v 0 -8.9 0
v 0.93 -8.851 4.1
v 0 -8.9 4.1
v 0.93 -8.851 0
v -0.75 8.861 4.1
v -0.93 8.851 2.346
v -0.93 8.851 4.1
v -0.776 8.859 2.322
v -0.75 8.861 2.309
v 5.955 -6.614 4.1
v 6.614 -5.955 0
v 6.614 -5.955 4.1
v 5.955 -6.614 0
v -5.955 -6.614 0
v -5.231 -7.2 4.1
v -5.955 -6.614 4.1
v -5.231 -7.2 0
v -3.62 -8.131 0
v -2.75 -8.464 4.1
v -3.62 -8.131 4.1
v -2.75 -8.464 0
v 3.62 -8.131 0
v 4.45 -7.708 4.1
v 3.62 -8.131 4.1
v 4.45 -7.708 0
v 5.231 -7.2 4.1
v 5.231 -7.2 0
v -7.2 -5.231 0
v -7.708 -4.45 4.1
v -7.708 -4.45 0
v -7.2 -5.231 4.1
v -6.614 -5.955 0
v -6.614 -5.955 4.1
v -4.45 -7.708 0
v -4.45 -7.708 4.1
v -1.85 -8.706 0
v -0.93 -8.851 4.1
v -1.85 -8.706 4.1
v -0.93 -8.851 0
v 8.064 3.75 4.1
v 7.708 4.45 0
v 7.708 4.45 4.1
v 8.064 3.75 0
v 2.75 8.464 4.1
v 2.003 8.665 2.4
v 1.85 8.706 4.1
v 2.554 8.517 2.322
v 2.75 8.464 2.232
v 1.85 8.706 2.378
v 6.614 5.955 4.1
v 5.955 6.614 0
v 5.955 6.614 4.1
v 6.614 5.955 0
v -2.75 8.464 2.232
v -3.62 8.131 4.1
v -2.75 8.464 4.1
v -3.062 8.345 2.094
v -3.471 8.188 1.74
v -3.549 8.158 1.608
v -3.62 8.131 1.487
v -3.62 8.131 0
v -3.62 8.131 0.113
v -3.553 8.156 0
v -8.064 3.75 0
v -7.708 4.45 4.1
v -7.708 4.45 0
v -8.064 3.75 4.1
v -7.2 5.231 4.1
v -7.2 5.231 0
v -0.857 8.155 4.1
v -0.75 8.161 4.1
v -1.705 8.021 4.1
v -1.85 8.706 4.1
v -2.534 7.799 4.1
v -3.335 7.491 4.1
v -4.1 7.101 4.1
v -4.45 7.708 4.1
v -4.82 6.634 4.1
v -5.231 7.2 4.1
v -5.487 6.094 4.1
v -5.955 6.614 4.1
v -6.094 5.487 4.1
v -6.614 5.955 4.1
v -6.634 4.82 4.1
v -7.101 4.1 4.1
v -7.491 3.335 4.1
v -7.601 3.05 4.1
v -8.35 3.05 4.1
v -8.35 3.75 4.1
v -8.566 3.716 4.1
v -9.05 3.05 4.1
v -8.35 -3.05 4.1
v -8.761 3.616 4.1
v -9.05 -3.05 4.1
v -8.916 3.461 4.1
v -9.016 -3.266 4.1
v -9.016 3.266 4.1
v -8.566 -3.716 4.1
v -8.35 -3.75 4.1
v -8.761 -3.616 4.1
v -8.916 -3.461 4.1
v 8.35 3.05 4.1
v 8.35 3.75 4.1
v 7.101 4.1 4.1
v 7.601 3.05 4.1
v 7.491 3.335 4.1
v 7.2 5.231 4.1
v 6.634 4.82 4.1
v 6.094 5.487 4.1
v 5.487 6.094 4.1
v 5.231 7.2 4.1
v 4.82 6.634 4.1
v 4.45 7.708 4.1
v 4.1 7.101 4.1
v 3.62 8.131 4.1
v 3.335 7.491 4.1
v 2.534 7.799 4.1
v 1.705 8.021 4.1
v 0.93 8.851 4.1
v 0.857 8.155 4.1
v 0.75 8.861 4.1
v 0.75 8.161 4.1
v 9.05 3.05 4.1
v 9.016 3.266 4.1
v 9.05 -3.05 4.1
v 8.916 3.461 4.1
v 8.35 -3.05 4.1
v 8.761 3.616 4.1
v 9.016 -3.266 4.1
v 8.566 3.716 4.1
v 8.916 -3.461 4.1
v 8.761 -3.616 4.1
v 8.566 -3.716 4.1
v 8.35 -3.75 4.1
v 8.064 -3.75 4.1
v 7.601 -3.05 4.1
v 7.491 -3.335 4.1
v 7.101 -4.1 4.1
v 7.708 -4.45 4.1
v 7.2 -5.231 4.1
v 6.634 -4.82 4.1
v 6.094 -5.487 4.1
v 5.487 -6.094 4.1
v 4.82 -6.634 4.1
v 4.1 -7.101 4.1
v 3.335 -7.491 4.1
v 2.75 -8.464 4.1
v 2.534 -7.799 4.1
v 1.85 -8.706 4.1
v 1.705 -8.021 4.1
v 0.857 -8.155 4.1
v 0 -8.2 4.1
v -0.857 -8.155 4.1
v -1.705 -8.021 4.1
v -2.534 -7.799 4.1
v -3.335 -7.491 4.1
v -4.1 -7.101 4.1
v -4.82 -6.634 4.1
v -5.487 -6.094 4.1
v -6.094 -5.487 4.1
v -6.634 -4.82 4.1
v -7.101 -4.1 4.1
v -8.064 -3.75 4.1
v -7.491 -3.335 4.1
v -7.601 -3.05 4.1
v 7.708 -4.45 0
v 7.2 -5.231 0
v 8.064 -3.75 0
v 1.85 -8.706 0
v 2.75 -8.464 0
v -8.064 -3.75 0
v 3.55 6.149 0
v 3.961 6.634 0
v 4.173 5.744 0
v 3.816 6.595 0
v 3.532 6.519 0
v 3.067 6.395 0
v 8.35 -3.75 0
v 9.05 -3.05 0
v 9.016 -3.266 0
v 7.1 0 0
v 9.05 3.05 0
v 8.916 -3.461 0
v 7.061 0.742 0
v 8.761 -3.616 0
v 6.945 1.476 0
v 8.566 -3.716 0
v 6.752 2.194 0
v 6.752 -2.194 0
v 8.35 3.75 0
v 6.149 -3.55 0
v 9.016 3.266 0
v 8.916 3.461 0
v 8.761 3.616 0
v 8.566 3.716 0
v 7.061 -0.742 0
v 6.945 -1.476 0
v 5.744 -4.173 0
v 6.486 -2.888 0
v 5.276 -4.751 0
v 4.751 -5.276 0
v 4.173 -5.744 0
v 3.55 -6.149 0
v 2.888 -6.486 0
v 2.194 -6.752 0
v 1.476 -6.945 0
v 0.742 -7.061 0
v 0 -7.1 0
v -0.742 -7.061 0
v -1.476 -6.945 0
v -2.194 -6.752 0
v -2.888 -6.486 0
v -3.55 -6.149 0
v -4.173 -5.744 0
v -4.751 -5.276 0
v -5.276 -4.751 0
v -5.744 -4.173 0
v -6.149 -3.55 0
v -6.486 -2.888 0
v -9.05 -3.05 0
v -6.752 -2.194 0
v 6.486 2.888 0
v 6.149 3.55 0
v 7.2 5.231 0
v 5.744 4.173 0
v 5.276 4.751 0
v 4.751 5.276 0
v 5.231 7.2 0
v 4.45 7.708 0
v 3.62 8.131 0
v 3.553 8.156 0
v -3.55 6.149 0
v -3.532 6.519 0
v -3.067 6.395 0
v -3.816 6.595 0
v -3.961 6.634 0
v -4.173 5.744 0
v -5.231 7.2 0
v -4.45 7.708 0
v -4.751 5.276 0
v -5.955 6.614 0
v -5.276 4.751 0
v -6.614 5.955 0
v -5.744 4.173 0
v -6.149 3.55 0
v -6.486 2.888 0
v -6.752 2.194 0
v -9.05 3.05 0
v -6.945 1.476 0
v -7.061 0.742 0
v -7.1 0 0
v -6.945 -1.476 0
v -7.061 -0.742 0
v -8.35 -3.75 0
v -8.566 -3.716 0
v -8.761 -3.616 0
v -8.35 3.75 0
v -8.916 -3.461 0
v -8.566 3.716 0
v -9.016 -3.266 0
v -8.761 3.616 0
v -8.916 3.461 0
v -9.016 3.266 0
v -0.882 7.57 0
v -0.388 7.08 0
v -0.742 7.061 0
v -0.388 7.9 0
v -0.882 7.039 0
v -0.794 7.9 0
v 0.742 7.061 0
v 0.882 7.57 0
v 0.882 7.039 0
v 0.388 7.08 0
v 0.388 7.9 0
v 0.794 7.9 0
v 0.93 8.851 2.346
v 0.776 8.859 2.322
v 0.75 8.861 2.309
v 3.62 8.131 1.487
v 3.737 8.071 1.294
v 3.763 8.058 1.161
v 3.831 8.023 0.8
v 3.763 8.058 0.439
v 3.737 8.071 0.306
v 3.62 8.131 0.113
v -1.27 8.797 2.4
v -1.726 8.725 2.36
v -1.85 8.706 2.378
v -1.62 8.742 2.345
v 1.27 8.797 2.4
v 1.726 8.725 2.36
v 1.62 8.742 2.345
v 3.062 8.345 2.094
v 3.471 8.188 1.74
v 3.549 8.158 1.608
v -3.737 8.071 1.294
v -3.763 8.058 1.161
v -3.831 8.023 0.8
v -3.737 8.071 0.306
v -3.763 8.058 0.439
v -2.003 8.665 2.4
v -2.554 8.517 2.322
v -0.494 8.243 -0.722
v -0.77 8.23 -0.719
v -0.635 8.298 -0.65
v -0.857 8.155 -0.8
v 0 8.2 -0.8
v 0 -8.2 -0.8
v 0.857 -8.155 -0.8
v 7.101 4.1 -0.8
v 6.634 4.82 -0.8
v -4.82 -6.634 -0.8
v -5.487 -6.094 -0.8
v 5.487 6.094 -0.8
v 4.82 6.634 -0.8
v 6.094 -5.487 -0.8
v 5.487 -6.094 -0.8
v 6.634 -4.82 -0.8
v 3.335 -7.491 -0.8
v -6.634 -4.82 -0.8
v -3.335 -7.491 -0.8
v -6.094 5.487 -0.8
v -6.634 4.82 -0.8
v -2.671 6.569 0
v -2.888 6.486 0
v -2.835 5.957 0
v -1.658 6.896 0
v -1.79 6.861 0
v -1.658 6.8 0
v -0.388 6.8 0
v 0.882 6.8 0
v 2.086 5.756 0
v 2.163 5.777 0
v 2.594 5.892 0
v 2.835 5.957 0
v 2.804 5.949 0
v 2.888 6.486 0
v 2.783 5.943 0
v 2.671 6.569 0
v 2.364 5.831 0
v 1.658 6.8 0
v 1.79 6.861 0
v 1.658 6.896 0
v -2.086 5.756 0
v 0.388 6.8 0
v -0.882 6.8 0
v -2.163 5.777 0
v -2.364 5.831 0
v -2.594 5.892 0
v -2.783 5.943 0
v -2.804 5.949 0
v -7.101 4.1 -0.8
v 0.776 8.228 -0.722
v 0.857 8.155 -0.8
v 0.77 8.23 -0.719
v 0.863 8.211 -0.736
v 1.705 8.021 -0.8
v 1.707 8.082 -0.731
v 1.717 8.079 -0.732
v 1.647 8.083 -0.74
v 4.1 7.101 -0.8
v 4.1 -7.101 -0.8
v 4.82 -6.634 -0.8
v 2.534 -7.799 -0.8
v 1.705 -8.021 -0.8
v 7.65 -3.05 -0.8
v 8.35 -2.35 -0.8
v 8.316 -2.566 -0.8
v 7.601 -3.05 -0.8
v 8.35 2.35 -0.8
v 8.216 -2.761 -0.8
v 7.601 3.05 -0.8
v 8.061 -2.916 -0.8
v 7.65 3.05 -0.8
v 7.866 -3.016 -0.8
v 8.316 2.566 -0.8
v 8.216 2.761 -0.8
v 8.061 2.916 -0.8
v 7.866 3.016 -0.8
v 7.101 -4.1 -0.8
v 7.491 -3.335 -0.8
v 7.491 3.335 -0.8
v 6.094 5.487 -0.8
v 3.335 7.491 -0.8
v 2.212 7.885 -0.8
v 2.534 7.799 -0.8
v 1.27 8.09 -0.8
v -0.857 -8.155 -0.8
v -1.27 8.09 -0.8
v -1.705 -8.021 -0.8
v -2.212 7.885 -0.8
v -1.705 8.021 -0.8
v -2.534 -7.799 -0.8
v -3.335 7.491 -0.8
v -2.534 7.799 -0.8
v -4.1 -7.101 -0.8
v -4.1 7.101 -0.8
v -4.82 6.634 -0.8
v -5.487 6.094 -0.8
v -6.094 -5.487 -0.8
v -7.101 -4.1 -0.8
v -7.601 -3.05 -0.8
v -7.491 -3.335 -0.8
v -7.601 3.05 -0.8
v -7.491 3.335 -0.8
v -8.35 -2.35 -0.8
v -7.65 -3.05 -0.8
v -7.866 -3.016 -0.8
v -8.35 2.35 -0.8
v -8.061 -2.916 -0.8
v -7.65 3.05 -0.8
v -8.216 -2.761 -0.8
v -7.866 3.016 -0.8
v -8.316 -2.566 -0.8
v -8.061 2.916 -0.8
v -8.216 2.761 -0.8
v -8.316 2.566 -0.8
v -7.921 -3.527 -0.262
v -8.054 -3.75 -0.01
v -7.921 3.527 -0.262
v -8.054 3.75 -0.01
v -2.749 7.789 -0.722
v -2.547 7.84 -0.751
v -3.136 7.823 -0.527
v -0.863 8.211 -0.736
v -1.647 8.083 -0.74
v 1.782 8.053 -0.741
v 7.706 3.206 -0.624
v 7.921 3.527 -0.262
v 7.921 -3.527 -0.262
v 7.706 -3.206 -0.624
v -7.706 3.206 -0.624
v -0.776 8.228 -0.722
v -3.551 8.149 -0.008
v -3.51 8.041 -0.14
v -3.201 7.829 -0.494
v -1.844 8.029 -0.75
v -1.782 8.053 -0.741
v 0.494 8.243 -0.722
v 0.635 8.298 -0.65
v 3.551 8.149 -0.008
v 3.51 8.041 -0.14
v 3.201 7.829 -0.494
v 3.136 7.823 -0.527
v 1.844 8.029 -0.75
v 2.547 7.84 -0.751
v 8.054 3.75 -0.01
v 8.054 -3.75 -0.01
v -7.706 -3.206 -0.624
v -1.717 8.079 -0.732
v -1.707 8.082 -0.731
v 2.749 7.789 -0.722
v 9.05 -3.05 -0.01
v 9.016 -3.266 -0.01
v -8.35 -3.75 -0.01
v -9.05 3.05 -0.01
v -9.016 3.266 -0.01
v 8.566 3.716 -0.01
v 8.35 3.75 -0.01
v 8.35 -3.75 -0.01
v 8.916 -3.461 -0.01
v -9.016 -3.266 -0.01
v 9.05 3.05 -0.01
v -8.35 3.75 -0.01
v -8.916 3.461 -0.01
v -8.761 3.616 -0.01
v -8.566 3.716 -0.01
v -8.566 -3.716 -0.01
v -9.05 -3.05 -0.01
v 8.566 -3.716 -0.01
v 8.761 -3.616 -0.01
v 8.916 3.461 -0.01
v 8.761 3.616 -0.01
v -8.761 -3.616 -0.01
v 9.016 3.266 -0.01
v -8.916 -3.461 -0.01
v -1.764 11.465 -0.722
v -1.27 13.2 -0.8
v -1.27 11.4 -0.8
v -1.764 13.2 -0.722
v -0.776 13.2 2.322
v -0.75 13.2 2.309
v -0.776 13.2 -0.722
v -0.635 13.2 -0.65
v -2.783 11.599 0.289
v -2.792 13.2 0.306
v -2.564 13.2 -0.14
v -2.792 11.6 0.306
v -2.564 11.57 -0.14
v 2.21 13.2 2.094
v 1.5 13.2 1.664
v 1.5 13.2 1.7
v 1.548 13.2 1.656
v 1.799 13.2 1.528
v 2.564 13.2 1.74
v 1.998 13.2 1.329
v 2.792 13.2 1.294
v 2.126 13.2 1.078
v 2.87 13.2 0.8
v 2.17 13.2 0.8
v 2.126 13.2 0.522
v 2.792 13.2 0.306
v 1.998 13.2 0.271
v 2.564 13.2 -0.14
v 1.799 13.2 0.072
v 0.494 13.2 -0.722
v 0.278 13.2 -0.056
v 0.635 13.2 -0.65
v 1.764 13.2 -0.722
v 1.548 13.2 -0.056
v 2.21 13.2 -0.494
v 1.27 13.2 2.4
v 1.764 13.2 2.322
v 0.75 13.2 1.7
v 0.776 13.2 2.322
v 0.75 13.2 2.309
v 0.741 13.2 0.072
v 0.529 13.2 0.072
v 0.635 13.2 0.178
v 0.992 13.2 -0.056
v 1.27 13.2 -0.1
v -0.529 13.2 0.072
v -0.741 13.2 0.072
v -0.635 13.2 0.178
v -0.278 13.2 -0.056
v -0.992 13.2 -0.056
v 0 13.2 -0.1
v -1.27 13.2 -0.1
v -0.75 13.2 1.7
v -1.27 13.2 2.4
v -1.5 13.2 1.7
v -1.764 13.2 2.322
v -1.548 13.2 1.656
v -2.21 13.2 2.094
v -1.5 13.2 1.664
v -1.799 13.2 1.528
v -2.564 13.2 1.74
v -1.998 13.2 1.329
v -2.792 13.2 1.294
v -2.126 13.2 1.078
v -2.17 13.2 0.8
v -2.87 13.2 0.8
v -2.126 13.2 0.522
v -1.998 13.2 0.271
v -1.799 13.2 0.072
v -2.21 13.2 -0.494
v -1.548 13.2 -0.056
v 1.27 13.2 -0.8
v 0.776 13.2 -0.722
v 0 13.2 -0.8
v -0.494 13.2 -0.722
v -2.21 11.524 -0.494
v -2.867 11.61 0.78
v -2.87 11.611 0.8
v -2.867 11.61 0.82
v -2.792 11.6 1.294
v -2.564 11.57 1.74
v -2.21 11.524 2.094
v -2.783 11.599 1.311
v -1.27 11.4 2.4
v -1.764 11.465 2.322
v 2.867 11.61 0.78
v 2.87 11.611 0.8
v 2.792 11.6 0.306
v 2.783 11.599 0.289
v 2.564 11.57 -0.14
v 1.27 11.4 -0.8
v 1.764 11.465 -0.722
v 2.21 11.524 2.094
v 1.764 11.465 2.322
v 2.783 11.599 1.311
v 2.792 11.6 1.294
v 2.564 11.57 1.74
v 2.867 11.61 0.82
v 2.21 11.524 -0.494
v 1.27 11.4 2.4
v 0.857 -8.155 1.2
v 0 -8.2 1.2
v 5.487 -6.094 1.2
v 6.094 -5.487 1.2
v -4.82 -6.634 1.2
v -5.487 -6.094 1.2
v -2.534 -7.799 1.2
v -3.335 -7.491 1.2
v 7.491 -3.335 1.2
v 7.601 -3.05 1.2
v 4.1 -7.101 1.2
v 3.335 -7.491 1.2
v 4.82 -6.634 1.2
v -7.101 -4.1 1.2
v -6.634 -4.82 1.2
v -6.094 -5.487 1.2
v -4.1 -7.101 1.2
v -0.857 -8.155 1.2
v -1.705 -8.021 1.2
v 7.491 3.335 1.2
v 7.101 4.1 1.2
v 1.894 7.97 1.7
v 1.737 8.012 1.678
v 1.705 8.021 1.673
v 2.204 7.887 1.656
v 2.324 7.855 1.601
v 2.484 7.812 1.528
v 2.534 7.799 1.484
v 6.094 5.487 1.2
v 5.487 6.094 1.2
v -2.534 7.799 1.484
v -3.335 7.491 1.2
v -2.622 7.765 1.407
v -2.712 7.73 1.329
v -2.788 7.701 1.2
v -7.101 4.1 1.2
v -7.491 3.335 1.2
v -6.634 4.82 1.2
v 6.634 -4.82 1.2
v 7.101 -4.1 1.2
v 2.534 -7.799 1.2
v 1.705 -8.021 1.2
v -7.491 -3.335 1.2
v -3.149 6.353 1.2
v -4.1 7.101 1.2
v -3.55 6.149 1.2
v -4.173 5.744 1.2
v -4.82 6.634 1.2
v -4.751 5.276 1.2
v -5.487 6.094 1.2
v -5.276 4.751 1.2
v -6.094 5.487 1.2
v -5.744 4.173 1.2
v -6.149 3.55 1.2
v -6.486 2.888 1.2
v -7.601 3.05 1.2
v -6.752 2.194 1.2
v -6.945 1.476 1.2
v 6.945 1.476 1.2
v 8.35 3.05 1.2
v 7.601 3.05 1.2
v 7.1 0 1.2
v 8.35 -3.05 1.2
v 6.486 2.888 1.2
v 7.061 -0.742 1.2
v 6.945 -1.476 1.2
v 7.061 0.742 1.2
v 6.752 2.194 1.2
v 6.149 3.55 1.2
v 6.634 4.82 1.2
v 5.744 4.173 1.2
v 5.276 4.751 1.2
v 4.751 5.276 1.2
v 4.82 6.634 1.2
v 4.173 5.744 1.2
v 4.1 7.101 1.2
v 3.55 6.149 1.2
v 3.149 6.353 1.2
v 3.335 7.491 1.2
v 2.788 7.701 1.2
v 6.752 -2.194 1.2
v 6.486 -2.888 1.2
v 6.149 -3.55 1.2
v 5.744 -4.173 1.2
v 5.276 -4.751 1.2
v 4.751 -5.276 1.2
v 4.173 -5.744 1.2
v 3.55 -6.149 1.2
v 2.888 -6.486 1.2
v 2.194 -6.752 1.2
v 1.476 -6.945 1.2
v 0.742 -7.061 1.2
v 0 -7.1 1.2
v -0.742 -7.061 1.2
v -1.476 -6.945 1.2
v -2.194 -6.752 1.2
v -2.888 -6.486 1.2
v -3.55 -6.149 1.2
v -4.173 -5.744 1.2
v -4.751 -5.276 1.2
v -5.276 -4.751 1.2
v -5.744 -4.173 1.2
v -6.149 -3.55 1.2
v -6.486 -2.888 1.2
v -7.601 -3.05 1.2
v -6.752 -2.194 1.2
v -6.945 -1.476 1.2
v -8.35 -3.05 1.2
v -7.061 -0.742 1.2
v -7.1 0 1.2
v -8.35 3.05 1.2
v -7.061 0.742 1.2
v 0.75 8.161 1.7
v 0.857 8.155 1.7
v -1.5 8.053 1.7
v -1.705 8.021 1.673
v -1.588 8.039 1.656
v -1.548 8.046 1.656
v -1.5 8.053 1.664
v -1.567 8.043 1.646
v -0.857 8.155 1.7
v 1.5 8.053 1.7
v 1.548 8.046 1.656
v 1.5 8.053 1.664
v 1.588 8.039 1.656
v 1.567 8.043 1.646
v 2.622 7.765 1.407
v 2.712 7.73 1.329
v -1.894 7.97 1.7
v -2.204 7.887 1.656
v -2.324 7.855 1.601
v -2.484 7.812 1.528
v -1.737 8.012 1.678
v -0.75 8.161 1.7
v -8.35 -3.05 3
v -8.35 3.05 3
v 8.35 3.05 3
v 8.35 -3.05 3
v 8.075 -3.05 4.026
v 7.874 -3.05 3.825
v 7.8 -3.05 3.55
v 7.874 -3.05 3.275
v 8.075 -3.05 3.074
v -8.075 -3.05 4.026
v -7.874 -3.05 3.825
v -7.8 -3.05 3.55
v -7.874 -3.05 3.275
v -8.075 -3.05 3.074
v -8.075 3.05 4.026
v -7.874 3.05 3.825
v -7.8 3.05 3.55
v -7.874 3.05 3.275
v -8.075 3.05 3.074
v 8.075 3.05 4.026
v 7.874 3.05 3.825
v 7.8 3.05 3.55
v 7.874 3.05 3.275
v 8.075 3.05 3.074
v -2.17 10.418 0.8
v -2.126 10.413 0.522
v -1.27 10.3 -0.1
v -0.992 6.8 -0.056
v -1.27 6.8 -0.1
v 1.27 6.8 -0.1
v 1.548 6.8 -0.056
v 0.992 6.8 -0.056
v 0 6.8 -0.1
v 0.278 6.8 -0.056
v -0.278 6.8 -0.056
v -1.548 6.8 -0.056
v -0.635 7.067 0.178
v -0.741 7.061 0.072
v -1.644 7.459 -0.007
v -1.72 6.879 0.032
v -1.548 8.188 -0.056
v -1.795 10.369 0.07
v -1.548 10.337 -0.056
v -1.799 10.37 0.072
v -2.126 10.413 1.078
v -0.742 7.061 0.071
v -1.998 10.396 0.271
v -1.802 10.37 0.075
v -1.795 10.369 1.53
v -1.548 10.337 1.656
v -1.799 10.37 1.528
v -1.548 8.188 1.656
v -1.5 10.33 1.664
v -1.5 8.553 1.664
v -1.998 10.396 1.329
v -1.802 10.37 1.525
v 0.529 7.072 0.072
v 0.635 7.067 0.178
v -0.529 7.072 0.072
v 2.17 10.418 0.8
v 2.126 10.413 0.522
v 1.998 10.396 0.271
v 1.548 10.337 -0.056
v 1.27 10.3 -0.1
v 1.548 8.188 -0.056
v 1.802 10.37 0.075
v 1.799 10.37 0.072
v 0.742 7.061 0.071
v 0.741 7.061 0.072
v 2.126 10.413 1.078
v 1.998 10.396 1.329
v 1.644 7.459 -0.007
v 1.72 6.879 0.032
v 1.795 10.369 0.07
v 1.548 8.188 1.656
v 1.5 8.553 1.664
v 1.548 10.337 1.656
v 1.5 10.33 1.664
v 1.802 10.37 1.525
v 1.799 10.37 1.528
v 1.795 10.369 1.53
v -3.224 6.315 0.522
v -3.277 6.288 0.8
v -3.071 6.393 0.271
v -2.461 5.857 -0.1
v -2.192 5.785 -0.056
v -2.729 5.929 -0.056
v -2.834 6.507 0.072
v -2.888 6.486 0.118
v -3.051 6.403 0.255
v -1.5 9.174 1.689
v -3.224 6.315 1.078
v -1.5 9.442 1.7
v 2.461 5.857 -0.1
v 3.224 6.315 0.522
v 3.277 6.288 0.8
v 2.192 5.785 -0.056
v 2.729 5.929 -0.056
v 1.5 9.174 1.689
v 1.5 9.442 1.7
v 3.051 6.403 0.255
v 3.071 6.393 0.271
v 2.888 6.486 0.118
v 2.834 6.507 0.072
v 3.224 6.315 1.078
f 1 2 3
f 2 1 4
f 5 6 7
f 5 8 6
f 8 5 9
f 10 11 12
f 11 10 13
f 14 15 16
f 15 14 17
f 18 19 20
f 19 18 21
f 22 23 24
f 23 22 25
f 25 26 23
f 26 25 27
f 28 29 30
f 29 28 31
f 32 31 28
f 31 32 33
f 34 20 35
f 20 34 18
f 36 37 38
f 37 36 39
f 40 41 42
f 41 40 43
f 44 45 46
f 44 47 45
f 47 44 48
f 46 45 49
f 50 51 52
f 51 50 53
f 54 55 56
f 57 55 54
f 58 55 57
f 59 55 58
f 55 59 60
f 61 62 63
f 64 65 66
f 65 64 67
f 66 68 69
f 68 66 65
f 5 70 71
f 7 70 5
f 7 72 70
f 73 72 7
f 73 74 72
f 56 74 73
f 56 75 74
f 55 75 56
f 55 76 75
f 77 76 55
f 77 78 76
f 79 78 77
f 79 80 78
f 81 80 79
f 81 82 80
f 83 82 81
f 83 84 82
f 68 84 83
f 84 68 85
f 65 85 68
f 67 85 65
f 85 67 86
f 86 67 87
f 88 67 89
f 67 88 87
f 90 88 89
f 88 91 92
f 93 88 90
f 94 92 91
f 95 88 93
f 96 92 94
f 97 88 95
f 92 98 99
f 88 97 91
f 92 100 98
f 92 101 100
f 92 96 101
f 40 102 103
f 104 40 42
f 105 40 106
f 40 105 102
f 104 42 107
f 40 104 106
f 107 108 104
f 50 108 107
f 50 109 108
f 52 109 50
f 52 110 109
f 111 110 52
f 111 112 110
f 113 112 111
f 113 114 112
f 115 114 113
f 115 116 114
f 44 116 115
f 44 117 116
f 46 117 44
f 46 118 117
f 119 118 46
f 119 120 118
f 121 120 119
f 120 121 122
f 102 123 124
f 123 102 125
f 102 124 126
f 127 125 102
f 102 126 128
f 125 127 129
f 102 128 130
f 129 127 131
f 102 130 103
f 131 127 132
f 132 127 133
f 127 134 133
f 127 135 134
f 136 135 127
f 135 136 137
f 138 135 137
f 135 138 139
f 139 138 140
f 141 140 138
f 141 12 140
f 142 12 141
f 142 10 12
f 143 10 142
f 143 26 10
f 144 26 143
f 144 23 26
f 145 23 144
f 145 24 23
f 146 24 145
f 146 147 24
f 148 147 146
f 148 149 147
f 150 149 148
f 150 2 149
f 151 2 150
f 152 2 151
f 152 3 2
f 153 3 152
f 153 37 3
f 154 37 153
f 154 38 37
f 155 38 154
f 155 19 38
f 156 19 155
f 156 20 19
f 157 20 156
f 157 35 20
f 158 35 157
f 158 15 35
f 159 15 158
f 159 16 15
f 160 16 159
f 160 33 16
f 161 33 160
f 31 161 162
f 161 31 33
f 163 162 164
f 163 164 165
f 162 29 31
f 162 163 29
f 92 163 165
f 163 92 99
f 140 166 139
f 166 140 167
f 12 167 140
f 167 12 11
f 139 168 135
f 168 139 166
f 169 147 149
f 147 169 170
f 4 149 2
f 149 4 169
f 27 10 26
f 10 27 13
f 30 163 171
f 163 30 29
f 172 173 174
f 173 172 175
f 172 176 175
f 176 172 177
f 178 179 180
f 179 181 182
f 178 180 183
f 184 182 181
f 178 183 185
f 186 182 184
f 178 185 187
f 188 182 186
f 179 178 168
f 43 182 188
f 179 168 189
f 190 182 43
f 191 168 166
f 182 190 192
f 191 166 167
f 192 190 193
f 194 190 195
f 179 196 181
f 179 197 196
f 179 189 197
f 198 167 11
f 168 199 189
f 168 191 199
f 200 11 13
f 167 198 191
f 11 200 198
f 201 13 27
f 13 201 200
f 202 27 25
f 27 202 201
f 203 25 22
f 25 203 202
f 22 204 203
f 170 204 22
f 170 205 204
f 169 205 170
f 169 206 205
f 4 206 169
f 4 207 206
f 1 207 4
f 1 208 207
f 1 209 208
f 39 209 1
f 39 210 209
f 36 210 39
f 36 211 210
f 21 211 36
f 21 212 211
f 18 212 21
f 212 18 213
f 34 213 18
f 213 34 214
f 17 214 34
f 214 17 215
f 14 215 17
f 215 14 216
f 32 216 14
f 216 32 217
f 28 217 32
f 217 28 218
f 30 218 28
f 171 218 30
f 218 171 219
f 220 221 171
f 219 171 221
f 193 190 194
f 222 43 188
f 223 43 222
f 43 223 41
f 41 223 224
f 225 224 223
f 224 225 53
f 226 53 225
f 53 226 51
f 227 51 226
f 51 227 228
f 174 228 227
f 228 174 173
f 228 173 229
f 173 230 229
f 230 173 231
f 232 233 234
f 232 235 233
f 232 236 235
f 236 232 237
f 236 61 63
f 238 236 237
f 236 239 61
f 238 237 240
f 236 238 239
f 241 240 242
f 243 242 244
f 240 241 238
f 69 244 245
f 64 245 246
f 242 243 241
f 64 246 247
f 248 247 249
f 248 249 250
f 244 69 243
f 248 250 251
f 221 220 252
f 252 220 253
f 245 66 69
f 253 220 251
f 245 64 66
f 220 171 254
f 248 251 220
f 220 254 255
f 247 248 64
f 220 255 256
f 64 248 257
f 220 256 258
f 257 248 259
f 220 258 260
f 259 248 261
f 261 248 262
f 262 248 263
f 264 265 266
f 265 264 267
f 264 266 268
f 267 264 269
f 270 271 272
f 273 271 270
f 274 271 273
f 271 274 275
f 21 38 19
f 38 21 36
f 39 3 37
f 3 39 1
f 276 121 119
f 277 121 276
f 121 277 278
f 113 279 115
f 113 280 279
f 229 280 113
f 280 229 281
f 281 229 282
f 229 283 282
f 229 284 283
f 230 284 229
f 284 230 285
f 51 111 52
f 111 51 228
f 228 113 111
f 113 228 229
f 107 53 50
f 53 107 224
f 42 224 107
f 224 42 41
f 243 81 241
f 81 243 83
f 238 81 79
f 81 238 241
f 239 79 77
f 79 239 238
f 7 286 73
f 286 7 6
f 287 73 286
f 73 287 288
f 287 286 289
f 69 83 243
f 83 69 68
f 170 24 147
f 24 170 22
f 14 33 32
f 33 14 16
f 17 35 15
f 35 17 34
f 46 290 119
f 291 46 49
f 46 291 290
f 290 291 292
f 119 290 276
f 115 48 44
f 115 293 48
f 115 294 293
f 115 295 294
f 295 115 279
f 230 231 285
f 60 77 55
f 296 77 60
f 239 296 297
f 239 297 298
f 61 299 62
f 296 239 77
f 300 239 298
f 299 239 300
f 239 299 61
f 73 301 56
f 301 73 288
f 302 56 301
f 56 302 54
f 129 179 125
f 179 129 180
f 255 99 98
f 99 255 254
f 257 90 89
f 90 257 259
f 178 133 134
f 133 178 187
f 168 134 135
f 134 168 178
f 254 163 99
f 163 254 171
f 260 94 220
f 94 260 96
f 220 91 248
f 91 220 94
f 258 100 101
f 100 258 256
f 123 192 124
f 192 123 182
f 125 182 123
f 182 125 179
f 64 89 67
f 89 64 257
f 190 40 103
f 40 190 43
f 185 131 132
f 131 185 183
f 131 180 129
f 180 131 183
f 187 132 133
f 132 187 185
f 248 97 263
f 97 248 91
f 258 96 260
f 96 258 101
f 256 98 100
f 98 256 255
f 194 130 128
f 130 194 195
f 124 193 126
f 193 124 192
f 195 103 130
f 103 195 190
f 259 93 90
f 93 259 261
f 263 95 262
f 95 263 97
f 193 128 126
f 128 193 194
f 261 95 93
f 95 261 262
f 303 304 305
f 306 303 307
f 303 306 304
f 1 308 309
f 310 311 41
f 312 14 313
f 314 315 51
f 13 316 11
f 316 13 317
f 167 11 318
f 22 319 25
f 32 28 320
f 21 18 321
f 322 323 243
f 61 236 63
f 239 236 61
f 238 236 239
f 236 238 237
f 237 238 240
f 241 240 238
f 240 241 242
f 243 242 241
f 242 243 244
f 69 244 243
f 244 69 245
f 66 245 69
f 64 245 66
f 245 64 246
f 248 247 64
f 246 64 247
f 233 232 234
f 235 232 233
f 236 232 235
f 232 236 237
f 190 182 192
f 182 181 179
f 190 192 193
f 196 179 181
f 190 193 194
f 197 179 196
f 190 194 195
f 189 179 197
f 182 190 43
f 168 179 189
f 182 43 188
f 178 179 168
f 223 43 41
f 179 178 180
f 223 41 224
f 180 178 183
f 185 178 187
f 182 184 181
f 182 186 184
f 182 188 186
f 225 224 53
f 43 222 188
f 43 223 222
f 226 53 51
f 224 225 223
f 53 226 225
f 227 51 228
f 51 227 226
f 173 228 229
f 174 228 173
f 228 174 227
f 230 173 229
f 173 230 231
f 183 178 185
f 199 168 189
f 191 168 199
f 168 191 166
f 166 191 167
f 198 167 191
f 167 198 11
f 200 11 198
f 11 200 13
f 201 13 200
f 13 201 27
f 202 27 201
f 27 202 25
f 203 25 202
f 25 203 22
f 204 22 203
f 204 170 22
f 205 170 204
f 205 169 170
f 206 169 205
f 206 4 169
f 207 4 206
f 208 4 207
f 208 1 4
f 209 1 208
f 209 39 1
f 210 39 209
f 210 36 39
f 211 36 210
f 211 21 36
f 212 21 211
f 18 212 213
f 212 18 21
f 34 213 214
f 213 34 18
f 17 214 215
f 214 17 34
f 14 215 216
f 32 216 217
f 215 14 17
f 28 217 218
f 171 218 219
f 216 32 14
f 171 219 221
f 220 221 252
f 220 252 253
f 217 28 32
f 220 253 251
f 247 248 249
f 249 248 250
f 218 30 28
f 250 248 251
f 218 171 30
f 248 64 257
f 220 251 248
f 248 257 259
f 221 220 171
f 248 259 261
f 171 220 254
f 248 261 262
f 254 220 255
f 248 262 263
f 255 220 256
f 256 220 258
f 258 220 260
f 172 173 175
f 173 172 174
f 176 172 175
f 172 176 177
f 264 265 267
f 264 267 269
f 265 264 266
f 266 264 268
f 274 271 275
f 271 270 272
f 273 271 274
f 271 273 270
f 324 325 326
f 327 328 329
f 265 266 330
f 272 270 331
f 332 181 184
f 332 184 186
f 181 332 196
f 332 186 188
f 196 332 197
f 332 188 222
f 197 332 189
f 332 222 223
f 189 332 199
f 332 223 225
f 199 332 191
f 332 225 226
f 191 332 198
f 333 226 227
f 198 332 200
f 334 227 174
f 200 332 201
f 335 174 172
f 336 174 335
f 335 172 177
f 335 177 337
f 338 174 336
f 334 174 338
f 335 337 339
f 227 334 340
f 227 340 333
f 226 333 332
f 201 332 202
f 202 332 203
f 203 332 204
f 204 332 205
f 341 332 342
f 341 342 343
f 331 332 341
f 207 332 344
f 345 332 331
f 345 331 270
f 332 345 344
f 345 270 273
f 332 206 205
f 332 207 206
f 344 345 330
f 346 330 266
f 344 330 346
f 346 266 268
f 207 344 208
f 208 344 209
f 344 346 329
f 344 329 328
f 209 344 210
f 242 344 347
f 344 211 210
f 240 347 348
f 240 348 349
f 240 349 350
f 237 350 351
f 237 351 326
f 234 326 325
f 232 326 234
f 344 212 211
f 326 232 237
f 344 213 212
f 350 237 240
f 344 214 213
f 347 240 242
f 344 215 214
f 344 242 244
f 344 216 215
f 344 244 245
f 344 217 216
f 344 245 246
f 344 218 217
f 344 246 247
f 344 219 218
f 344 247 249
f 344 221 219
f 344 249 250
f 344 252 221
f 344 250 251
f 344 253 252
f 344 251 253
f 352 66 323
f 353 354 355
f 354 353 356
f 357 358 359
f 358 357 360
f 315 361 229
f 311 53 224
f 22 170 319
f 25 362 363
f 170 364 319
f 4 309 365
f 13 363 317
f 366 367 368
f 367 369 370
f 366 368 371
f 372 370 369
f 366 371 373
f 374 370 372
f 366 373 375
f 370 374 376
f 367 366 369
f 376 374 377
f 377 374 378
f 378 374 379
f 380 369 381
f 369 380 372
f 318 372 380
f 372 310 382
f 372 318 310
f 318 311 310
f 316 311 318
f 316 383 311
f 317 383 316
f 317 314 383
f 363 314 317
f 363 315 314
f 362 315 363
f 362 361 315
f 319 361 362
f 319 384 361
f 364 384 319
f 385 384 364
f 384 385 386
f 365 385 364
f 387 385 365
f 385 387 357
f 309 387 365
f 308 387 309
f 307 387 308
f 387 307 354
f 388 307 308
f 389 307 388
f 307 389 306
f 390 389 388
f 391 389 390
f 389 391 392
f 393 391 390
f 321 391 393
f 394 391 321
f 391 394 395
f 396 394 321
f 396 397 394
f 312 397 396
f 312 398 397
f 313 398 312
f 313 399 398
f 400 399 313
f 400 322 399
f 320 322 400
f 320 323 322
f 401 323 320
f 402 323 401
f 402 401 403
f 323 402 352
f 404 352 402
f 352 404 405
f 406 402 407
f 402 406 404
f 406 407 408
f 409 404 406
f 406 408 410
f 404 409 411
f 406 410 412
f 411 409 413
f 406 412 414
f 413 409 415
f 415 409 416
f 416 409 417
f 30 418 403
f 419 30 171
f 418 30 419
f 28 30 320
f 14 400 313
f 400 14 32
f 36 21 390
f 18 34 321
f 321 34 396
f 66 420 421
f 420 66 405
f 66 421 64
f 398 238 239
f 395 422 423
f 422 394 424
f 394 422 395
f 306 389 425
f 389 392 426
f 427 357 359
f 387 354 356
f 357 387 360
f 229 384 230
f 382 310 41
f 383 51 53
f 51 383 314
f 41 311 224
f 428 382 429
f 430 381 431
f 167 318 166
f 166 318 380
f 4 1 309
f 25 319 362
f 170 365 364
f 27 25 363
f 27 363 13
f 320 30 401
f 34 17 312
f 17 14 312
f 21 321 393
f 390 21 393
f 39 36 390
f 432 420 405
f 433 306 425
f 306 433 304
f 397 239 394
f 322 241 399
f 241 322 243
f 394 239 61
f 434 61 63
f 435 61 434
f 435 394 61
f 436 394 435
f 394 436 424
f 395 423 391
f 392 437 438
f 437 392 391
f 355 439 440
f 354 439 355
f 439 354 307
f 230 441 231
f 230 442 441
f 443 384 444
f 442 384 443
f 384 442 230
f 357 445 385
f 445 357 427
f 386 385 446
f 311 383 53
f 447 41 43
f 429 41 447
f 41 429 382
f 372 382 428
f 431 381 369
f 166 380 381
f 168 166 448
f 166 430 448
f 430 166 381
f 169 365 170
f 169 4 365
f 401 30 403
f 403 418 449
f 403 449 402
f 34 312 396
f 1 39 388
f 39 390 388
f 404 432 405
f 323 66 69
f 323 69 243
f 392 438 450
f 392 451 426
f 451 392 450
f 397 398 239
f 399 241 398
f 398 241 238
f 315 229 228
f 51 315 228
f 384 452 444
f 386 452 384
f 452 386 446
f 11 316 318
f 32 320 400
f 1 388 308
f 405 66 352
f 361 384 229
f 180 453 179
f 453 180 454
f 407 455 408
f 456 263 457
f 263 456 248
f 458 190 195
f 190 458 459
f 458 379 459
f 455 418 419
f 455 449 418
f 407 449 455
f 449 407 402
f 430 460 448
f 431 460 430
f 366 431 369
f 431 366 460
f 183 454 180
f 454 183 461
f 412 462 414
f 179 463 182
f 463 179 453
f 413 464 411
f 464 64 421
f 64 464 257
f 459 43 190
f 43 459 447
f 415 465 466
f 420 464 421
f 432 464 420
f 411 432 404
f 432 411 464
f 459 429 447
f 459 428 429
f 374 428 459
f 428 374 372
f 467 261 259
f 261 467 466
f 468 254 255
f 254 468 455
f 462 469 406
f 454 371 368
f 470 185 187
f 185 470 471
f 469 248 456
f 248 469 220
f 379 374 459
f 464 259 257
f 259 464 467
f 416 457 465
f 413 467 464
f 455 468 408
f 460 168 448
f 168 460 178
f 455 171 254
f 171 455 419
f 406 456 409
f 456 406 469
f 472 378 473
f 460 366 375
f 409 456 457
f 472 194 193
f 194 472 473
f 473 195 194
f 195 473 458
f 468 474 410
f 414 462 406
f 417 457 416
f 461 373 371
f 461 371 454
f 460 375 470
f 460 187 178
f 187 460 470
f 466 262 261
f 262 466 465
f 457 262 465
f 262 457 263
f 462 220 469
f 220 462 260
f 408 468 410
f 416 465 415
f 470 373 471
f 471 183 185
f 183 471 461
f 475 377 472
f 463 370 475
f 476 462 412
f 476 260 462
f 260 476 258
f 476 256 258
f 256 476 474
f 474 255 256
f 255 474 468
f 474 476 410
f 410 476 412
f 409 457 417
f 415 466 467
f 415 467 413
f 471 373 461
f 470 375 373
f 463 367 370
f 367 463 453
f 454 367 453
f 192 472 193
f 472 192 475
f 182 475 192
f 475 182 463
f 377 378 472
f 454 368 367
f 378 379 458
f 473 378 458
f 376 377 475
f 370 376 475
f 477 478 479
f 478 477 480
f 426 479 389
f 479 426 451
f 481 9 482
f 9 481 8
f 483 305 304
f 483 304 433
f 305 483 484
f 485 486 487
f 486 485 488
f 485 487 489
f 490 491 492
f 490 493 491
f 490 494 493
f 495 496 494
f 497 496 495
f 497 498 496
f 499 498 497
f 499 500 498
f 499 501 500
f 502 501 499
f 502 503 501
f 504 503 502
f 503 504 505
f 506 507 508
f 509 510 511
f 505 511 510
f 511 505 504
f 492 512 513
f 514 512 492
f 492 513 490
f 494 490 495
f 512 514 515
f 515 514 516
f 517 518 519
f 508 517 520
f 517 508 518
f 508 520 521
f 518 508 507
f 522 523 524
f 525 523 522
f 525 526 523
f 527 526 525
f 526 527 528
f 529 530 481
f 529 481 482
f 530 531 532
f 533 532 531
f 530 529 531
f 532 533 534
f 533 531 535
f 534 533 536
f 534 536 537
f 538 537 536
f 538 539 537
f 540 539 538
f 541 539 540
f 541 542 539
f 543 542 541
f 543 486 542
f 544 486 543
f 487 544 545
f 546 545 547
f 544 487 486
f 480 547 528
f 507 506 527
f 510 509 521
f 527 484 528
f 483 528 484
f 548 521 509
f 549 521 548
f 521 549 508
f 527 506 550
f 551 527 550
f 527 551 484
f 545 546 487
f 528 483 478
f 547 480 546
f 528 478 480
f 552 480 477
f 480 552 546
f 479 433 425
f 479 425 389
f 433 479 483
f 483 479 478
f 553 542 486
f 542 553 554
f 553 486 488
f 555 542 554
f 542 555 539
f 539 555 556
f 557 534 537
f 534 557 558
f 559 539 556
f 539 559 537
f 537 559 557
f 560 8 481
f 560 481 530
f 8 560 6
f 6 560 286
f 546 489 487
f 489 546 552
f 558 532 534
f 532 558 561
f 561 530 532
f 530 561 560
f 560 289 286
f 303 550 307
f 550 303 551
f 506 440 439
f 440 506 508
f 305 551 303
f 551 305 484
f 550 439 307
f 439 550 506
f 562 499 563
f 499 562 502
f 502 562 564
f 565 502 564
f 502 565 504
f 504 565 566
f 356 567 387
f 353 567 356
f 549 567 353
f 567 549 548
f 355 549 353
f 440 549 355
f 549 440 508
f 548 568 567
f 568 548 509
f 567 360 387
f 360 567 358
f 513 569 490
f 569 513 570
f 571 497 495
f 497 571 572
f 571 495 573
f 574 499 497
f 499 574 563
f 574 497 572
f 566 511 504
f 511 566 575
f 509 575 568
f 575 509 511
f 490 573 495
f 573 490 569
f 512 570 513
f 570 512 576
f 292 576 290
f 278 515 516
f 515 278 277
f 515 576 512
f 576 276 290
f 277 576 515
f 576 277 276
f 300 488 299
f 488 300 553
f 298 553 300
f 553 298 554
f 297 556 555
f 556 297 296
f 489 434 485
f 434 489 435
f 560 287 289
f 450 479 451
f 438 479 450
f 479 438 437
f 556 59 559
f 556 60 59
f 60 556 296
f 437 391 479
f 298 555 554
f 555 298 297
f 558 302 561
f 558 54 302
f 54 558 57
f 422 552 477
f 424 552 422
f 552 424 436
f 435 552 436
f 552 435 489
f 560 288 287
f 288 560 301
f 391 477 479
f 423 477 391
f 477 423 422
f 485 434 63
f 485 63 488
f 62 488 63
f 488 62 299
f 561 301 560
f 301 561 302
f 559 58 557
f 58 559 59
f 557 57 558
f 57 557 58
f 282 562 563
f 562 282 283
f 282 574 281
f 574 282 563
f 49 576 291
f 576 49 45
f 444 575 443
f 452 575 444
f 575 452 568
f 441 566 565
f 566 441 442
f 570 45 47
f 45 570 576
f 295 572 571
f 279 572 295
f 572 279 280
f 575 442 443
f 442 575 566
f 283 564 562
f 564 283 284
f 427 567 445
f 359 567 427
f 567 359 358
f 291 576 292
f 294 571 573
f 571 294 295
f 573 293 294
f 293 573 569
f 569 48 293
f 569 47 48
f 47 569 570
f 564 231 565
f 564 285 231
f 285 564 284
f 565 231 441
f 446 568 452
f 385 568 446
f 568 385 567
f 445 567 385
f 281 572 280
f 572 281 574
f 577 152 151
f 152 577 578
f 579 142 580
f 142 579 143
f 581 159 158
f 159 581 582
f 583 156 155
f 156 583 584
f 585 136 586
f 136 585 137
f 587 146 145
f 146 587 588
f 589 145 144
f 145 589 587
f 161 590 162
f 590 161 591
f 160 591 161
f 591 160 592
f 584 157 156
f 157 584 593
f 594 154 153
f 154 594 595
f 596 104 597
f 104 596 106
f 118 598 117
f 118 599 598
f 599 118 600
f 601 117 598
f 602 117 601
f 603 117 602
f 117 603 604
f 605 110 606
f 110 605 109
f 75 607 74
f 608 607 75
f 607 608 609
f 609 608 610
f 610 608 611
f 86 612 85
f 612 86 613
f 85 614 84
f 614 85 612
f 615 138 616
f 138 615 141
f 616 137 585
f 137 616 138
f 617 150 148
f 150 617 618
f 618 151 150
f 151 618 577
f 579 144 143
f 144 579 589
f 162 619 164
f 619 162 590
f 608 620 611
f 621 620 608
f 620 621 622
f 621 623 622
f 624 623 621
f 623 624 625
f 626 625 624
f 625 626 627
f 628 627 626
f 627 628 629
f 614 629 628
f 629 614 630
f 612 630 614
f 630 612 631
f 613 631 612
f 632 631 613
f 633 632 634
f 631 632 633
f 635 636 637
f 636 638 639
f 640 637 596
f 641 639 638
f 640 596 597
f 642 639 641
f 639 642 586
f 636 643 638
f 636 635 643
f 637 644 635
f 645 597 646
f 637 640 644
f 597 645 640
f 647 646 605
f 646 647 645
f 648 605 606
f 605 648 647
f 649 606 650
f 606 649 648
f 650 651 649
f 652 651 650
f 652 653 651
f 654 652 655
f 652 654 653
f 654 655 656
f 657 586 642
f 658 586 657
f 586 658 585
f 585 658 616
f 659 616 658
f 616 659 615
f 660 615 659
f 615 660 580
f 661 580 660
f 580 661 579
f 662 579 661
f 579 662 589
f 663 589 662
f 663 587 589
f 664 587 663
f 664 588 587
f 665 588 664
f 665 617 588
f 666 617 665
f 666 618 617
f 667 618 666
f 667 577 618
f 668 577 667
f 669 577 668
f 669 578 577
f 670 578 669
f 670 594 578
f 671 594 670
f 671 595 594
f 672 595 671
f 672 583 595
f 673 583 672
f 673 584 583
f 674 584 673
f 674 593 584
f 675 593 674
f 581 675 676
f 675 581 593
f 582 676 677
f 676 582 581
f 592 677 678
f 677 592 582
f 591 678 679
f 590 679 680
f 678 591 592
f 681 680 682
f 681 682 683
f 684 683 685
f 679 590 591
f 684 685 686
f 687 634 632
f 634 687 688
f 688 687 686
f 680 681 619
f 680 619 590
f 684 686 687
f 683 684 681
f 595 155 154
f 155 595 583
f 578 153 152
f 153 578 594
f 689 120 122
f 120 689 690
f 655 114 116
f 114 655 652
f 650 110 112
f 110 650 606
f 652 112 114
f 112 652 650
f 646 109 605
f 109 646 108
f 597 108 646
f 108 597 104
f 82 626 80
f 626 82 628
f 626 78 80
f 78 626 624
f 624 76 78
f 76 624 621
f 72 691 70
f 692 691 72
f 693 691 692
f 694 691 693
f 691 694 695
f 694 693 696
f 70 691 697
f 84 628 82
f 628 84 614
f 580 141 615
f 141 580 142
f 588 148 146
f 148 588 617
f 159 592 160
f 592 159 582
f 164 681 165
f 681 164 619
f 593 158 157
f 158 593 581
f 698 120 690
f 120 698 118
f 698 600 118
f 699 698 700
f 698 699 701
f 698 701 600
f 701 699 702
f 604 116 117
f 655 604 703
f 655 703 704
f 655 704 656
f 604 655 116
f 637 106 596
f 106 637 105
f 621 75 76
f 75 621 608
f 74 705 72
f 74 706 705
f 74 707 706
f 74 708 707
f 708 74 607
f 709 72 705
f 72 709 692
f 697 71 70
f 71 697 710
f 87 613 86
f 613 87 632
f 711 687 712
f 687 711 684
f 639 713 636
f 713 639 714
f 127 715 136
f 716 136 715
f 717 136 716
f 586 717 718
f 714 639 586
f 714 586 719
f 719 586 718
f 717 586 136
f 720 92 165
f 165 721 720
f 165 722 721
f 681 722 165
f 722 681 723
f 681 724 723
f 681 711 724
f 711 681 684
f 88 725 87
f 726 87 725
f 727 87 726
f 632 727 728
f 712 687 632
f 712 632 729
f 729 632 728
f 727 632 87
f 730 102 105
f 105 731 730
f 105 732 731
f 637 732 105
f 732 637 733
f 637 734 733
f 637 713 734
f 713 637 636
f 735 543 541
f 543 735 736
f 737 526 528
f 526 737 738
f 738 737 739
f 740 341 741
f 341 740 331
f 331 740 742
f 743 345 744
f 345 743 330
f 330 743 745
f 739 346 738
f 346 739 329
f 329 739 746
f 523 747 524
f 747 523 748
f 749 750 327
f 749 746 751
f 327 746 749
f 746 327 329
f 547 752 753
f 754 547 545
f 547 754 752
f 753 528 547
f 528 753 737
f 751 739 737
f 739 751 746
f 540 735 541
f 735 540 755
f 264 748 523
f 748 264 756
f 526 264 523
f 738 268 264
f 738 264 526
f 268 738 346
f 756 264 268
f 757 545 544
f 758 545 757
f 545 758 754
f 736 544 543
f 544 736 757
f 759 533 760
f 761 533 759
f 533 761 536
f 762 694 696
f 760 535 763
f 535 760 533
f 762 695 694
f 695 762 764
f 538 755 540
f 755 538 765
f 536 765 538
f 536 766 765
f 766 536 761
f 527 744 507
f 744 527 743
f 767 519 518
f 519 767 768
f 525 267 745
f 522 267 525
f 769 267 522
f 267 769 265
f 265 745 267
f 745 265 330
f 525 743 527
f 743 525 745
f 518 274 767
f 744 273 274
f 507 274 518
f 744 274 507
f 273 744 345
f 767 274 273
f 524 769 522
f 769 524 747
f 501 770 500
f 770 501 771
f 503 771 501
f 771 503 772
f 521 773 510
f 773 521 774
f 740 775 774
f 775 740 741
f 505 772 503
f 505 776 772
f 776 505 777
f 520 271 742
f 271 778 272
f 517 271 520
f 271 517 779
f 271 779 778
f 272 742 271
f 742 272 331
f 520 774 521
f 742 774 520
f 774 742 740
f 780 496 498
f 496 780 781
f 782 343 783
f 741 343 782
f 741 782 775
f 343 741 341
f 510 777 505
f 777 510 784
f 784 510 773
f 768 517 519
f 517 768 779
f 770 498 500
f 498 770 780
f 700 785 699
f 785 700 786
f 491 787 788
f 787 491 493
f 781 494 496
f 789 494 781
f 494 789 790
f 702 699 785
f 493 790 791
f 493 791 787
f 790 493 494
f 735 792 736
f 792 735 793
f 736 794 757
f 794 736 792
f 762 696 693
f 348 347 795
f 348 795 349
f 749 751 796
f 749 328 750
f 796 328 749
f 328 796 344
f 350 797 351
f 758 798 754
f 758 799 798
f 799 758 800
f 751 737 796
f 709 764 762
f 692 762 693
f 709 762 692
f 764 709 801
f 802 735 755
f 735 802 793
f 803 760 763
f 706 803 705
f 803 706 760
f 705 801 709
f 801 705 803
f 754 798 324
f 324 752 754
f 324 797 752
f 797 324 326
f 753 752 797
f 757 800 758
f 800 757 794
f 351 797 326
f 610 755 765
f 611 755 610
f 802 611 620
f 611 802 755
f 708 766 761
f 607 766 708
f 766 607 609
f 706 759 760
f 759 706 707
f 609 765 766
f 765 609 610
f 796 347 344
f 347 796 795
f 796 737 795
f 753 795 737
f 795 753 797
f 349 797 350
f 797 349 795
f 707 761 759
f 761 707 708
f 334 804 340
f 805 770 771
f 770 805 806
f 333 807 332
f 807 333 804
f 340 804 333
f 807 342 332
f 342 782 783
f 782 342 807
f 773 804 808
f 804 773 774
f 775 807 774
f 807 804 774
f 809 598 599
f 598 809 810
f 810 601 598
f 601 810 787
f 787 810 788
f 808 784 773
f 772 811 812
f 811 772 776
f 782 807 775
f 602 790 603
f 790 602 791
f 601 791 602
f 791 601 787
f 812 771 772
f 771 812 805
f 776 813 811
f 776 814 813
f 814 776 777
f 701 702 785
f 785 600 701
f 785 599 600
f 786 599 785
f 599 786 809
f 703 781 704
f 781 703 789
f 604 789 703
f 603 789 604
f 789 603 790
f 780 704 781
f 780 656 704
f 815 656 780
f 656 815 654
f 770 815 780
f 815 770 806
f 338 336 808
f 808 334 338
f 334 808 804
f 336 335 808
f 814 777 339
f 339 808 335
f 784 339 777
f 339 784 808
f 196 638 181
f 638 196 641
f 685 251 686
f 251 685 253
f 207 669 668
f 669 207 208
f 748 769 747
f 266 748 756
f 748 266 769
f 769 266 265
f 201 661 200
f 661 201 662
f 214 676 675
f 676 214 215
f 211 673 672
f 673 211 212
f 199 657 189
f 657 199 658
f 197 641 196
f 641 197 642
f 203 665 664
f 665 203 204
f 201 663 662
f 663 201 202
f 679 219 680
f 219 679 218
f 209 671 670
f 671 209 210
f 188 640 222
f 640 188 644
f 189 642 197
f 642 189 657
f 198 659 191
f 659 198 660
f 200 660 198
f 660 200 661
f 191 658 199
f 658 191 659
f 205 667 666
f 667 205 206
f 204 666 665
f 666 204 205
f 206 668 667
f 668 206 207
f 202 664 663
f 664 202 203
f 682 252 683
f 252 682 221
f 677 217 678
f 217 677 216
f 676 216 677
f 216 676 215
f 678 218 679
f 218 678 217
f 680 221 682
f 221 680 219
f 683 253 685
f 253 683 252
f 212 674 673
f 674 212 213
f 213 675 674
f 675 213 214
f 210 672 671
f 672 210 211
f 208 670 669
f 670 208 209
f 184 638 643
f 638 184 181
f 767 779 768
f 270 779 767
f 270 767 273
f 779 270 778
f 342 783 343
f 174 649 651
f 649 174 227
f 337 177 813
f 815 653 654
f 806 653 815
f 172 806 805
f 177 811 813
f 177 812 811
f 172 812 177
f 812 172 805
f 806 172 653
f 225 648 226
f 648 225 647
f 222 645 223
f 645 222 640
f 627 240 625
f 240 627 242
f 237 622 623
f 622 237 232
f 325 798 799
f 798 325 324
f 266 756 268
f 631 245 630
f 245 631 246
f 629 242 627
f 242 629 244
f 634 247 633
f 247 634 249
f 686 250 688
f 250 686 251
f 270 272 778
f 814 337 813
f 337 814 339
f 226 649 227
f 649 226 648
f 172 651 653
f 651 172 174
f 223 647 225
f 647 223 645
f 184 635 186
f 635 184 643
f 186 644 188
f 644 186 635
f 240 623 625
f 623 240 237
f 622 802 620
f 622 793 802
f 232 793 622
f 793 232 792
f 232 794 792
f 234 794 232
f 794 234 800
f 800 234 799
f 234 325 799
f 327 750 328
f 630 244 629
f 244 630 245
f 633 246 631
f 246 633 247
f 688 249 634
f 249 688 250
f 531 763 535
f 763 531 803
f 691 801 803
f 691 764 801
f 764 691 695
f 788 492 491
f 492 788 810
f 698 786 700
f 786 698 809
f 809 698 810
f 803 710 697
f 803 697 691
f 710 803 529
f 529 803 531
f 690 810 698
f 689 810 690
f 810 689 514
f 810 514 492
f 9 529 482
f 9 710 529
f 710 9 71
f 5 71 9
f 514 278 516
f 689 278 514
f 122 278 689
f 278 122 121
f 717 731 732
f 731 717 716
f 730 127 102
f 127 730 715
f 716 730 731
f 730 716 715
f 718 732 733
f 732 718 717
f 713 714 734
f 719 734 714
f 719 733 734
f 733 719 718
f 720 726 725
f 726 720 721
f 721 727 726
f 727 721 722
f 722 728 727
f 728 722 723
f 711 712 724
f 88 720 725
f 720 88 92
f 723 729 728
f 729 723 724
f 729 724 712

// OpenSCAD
//
//  Cap for pulsesensor
//
//  design by Egil Kvaleberg, May 2015
//
//  note: flat section of wire channel
//
//  note:
//  design origin is center of pcb, underside of top cover surface

part = "all"; // [ demo, all, section, core  ]
//part = "core";
//part = "section";

pcb_d = 15.8; // main diameter
pcb_w = 5.5; // width of square section
pcb_l = 16.1; // length
pcb_h = 1.5; // thickness
pcb_rim = 0.8;

wire_len = 5.0; // length of wire conduit
wire_dst = 1.27; // distance between wires
wire_dia = 1.5; // diameter of wire (1.27 nominally)

pcb2top = 1.5; // room for wires and components in top (1.1 net)
pcb2bot = 1.1; // lower rim

snap_dia = pcb2bot; // snap lock ridge diameter
snap_len_x = 10; // snap lock length
snap_len_y = pcb_w; // snap lock length

wall = 0.7;
twall = 0.8; // wall size of top 

tol = 0.3;
d = 0.01;


module nut(af, h) { // af is 2*r
	cylinder(r=af/2/cos(30), h=h, $fn=6);
}

module c_cube(x, y, z) {
	translate([-x/2, -y/2, 0]) cube([x, y, z]);
}

module cr_cube(x, y, z, r) {
	hull() {
		for (dx=[-1,1]) for (dy=[-1,1]) translate([dx*(x/2-r), dy*(y/2-r), 0]) cylinder(r=r, h=z, $fn=20);
	}
}

module cr2_cube(x, y, z, r1, r2) {
	hull() {
		for (dx=[-1,1]) for (dy=[-1,1]) translate([dx*(x/2-r1), dy*(y/2-r1), 0]) cylinder(r1=r1, r2=r2, h=z, $fn=20);
	}
}

module snap2() {
	translate([pcb_l/2+tol, -(snap_len_y+2*tol+2*d)/2, -(pcb2top+pcb_h+snap_dia/2)]) rotate([-90, 0, 0]) 
        cylinder(r=snap_dia/2, h=snap_len_y+2*tol+2*d, $fs=0.3);
;
}               

module cap_subtract() {

    // room for components
    translate([0, 0, -pcb2top-d]) cylinder(r=pcb_d/2-pcb_rim, h=pcb2top+d, $fn=60); 
    // room for pcb
    translate([0, 0, -pcb2top-pcb_h-pcb2bot-d]) {
        cylinder(r=pcb_d/2+tol, h=d+pcb2bot+pcb_h+tol, $fn=60); 
        c_cube(pcb_l+2*tol, pcb_w+2*tol, d+pcb2bot+pcb_h+tol);
    }
    // room for wires
    for (dw = [-wire_dst, 0, wire_dst]) 
        translate([dw, -(pcb_d/2-pcb_rim-tol), twall-(wire_dia/2+tol/2+wall)]) rotate([90, 0, 0]) cylinder(r=wire_dia/2+tol/2, h=pcb_rim+2*tol+wire_len+d, $fn=20);
    for (dw = [-wire_dst, wire_dst]) 
        translate([dw, -(pcb_d/2-pcb_rim-tol) - wire_len*0.7, twall-(wire_dia/2+tol/2+wall)]) rotate([90, 0, 180-sign(dw)*15]) cylinder(r=wire_dia/2+tol/2, h=pcb_rim+tol+wire_len*0.7, $fn=20);
        
    translate([0, -pcb_d/2, twall-(wire_dia/2+tol/2+wall)-(wire_dia/2+tol/2)/2]) rotate([90, 0, 0]) c_cube(2*wire_dia, (wire_dia+tol)/2, tol+wire_len+d);
    // cut through side for inserting wire
    translate([0, -pcb_d/2, -pcb2top-pcb_h-pcb2bot]) rotate([90, 0, 0]) c_cube(wire_dia, 2*(pcb_h+pcb2bot+wire_dia/2), tol+wire_len+d);

}

module cap() {
	difference() {
		union() {
			translate([0, 0, -pcb2top-pcb_h-pcb2bot]) {
                cylinder(r=pcb_d/2+tol+wall, h=pcb2top+pcb_h+pcb2bot, $fn=60);
                cr_cube(pcb_l+2*tol+2*wall, pcb_w+2*tol+2*wall, pcb2top+pcb_h+pcb2bot, wall);
            }
            translate([0, 0, 0]) {
                cylinder(r1=pcb_d/2+tol+wall, r2=pcb_d/2+tol, h=twall, $fn=60);
                hull () {
                    cr_cube(pcb_l+2*tol+2*wall, pcb_w+2*tol+2*wall, d, wall);
                    translate([0, 0, twall-d]) cr_cube(pcb_l+2*tol, pcb_w+2*tol, d, wall);    
                }    
            }
            for (dw = [-wire_dst, 0, wire_dst]) 
                translate([dw, -pcb_d/2, twall-(wire_dia/2+tol/2+wall)]) rotate([90, 0, 0]) cylinder(r=wire_dia/2+tol/2+wall, h=tol+wire_len, $fn=20);
            for (dw = [-wire_dst, wire_dst]) 
                translate([dw, -pcb_d/2 - wire_len*0.7, twall-(wire_dia/2+tol/2+wall)]) rotate([90, 0, 180-sign(dw)*15]) cylinder(r=wire_dia/2+tol/2+wall, h=tol+wire_len, $fn=20);
		}
		cap_subtract();  // subtract:
	}

    snap2();
    rotate([0,0,180]) snap2();
}


if (part=="demo" || part=="section") color("green") {
	translate([0, 0, -pcb2top-pcb_h]) {
        cylinder(r=pcb_d/2, h=pcb_h);
        c_cube(pcb_l+2*tol, pcb_w+2*tol, d+pcb2bot+pcb_h+tol);
    } 
}

if (part=="demo") cap(); 

if (part=="all") rotate([180, 0, 0]) cap();
    
if (part=="core") cap_subtract();
    
if (part=="section") intersection () {
    translate([-50, 0, -50]) cube([100, 100, 100]);    
    cap();
}
